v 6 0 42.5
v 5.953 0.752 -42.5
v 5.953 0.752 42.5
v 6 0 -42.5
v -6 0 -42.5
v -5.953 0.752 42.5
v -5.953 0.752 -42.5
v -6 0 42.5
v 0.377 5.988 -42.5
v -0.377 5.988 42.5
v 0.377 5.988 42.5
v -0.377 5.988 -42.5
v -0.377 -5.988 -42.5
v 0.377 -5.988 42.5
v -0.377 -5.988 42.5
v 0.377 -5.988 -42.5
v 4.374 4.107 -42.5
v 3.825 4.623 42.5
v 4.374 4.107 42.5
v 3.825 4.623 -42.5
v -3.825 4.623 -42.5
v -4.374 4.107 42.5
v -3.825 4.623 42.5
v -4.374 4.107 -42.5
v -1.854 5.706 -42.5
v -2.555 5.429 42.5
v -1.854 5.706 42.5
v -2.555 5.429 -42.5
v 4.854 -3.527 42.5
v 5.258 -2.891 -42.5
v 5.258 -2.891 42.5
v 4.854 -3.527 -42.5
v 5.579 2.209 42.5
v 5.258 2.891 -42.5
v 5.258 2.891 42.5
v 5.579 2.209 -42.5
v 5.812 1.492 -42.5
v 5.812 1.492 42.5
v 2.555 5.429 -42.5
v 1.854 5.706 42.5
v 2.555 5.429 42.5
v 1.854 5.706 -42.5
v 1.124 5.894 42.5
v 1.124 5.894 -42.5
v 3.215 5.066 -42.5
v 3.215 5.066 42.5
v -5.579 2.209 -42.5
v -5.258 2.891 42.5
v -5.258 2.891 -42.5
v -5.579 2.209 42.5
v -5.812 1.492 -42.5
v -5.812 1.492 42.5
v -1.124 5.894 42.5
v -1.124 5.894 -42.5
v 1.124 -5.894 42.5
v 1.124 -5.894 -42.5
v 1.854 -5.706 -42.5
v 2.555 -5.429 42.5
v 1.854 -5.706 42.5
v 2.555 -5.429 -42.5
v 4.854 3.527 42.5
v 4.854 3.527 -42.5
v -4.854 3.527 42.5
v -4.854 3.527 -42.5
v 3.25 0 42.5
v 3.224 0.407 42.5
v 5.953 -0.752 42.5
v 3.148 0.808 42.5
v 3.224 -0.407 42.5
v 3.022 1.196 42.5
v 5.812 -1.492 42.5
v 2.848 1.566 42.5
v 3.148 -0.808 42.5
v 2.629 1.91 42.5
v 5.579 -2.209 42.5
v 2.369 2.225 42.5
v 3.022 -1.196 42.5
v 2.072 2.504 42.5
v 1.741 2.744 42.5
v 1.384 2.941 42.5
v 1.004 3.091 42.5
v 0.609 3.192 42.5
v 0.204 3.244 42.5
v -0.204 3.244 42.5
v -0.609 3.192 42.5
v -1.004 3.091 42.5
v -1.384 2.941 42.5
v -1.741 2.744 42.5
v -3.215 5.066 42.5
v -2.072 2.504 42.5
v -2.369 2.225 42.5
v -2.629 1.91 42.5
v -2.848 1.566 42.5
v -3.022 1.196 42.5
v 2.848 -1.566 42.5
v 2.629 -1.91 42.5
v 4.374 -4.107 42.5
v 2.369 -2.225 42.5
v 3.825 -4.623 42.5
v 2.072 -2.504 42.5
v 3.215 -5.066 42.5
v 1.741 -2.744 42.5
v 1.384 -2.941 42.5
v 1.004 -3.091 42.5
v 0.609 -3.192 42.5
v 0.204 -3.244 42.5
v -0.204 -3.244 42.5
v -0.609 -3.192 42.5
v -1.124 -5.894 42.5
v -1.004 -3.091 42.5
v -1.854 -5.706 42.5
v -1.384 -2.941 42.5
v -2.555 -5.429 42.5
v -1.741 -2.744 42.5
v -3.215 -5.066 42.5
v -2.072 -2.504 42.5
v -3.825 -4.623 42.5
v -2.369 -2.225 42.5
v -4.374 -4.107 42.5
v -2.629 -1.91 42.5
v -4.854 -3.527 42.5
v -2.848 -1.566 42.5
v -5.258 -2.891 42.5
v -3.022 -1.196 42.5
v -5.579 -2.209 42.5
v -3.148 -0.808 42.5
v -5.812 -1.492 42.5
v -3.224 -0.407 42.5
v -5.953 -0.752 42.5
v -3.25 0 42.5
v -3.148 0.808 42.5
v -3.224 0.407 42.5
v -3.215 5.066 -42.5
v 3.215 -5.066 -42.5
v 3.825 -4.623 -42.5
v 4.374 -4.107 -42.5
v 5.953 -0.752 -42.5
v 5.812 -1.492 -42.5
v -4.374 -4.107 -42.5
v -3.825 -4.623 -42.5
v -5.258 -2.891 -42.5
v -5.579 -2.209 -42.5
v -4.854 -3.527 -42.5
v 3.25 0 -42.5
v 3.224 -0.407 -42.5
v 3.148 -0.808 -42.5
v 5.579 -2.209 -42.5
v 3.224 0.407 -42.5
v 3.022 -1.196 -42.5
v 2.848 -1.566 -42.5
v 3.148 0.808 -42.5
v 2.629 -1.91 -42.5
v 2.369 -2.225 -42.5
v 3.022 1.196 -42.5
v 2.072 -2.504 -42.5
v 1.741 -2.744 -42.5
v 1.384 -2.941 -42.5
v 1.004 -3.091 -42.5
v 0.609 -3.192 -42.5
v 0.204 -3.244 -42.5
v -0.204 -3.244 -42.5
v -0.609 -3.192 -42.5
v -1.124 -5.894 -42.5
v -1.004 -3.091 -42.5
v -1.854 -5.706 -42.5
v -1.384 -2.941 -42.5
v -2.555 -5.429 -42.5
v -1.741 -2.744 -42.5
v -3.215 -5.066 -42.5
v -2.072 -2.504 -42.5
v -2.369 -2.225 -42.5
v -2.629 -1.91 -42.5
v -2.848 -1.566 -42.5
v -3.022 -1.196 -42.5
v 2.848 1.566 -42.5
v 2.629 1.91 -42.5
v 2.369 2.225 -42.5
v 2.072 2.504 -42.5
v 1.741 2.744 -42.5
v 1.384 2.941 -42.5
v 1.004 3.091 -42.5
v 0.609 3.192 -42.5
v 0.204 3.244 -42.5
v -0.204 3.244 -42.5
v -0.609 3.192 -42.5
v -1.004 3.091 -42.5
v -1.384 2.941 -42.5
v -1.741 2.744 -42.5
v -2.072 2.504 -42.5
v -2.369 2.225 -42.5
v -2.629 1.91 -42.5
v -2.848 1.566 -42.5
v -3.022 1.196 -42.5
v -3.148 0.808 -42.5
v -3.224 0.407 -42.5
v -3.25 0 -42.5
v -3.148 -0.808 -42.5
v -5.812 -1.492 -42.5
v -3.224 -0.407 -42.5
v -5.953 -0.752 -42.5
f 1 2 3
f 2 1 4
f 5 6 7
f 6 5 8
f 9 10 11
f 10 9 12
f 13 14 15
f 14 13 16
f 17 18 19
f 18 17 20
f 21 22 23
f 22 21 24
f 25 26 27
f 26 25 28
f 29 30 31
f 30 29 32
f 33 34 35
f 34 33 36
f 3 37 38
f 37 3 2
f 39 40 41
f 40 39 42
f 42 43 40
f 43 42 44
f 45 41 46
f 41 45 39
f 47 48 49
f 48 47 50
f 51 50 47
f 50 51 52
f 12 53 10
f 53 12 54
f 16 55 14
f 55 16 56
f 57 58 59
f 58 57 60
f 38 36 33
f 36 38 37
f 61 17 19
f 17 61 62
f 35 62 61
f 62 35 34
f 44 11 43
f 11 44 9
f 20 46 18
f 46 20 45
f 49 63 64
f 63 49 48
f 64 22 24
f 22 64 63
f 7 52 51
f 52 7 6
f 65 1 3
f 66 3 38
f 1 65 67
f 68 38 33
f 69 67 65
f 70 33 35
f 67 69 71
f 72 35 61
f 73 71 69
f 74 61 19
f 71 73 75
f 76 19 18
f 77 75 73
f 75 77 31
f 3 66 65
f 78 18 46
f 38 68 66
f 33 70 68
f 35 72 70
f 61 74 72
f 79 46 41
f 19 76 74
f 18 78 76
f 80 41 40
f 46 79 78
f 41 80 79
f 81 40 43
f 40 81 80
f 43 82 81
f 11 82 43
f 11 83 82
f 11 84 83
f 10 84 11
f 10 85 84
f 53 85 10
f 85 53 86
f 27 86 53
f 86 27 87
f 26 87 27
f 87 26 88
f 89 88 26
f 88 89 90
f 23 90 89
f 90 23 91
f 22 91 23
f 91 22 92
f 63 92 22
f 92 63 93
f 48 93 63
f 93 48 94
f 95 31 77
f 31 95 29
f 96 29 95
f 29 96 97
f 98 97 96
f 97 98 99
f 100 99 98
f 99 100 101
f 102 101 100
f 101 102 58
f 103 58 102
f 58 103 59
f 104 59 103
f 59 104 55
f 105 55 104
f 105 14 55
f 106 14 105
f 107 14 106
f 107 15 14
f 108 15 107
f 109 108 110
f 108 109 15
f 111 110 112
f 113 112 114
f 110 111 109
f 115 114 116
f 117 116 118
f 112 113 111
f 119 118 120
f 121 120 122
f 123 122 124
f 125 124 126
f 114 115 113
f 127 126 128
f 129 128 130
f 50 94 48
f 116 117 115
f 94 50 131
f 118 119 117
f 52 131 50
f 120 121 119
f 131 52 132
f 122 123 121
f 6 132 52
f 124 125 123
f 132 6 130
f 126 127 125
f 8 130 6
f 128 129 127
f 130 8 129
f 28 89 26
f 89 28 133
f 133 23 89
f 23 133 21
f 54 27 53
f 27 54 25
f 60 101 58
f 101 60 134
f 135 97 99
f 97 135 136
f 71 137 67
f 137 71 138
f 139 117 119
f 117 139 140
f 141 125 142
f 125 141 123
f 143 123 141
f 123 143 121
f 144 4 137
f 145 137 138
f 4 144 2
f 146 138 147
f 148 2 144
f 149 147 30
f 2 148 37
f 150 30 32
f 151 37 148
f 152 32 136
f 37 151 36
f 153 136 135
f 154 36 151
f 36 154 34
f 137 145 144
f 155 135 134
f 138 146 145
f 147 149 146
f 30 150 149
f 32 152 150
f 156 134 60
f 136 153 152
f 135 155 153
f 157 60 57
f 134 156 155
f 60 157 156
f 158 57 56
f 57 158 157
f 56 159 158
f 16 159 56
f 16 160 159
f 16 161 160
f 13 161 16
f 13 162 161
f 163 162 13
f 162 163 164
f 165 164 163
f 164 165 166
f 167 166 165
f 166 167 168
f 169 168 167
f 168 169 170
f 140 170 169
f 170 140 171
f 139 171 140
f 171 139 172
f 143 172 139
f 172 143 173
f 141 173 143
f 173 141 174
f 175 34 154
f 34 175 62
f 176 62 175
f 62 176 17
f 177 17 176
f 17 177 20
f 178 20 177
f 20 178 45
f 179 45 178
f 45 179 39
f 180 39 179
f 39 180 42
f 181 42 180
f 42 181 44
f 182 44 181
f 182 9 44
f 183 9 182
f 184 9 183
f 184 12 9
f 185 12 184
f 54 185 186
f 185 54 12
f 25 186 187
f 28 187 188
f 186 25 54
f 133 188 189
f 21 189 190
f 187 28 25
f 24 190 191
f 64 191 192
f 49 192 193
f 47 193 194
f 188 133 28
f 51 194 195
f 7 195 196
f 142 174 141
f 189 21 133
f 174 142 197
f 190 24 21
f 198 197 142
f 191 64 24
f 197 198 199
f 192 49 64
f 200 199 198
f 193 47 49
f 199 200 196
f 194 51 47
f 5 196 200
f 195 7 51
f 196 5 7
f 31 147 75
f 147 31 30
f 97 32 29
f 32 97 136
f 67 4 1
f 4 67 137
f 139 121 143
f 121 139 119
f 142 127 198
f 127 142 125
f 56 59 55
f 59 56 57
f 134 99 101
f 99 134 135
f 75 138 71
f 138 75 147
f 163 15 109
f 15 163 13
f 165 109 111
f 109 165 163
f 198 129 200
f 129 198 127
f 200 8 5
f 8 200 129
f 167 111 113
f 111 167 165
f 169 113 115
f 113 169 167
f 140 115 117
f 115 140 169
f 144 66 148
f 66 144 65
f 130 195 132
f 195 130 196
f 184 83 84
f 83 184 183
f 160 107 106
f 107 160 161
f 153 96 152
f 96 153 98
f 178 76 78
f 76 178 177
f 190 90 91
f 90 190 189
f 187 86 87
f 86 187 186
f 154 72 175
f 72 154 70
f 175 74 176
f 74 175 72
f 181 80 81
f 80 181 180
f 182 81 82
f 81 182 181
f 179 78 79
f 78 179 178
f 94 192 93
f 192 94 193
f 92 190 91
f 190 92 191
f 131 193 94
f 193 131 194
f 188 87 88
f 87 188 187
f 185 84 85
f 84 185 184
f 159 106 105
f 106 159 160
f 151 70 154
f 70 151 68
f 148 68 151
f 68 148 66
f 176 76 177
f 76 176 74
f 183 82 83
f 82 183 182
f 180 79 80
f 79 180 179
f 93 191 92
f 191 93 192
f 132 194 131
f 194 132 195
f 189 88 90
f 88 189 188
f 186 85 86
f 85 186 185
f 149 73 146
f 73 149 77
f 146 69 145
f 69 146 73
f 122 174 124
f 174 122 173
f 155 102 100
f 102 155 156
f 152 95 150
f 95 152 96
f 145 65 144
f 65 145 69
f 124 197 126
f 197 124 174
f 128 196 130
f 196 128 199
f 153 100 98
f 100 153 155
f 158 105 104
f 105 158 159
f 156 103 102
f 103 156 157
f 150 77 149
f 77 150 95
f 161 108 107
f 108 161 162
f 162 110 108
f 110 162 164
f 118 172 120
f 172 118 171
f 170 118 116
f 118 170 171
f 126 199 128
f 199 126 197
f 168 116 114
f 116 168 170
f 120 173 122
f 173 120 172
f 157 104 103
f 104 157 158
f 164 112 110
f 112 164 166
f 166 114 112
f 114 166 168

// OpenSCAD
$fn = 50;


difference() {
	union() {
		translate(v = [0, 0, -42.5000000000]) {
			cylinder(h = 85, r = 6.0000000000);
		}
	}
	union() {
		translate(v = [0, 0, -100.0000000000]) {
			cylinder(h = 200, r = 3.2500000000);
		}
	}
}
